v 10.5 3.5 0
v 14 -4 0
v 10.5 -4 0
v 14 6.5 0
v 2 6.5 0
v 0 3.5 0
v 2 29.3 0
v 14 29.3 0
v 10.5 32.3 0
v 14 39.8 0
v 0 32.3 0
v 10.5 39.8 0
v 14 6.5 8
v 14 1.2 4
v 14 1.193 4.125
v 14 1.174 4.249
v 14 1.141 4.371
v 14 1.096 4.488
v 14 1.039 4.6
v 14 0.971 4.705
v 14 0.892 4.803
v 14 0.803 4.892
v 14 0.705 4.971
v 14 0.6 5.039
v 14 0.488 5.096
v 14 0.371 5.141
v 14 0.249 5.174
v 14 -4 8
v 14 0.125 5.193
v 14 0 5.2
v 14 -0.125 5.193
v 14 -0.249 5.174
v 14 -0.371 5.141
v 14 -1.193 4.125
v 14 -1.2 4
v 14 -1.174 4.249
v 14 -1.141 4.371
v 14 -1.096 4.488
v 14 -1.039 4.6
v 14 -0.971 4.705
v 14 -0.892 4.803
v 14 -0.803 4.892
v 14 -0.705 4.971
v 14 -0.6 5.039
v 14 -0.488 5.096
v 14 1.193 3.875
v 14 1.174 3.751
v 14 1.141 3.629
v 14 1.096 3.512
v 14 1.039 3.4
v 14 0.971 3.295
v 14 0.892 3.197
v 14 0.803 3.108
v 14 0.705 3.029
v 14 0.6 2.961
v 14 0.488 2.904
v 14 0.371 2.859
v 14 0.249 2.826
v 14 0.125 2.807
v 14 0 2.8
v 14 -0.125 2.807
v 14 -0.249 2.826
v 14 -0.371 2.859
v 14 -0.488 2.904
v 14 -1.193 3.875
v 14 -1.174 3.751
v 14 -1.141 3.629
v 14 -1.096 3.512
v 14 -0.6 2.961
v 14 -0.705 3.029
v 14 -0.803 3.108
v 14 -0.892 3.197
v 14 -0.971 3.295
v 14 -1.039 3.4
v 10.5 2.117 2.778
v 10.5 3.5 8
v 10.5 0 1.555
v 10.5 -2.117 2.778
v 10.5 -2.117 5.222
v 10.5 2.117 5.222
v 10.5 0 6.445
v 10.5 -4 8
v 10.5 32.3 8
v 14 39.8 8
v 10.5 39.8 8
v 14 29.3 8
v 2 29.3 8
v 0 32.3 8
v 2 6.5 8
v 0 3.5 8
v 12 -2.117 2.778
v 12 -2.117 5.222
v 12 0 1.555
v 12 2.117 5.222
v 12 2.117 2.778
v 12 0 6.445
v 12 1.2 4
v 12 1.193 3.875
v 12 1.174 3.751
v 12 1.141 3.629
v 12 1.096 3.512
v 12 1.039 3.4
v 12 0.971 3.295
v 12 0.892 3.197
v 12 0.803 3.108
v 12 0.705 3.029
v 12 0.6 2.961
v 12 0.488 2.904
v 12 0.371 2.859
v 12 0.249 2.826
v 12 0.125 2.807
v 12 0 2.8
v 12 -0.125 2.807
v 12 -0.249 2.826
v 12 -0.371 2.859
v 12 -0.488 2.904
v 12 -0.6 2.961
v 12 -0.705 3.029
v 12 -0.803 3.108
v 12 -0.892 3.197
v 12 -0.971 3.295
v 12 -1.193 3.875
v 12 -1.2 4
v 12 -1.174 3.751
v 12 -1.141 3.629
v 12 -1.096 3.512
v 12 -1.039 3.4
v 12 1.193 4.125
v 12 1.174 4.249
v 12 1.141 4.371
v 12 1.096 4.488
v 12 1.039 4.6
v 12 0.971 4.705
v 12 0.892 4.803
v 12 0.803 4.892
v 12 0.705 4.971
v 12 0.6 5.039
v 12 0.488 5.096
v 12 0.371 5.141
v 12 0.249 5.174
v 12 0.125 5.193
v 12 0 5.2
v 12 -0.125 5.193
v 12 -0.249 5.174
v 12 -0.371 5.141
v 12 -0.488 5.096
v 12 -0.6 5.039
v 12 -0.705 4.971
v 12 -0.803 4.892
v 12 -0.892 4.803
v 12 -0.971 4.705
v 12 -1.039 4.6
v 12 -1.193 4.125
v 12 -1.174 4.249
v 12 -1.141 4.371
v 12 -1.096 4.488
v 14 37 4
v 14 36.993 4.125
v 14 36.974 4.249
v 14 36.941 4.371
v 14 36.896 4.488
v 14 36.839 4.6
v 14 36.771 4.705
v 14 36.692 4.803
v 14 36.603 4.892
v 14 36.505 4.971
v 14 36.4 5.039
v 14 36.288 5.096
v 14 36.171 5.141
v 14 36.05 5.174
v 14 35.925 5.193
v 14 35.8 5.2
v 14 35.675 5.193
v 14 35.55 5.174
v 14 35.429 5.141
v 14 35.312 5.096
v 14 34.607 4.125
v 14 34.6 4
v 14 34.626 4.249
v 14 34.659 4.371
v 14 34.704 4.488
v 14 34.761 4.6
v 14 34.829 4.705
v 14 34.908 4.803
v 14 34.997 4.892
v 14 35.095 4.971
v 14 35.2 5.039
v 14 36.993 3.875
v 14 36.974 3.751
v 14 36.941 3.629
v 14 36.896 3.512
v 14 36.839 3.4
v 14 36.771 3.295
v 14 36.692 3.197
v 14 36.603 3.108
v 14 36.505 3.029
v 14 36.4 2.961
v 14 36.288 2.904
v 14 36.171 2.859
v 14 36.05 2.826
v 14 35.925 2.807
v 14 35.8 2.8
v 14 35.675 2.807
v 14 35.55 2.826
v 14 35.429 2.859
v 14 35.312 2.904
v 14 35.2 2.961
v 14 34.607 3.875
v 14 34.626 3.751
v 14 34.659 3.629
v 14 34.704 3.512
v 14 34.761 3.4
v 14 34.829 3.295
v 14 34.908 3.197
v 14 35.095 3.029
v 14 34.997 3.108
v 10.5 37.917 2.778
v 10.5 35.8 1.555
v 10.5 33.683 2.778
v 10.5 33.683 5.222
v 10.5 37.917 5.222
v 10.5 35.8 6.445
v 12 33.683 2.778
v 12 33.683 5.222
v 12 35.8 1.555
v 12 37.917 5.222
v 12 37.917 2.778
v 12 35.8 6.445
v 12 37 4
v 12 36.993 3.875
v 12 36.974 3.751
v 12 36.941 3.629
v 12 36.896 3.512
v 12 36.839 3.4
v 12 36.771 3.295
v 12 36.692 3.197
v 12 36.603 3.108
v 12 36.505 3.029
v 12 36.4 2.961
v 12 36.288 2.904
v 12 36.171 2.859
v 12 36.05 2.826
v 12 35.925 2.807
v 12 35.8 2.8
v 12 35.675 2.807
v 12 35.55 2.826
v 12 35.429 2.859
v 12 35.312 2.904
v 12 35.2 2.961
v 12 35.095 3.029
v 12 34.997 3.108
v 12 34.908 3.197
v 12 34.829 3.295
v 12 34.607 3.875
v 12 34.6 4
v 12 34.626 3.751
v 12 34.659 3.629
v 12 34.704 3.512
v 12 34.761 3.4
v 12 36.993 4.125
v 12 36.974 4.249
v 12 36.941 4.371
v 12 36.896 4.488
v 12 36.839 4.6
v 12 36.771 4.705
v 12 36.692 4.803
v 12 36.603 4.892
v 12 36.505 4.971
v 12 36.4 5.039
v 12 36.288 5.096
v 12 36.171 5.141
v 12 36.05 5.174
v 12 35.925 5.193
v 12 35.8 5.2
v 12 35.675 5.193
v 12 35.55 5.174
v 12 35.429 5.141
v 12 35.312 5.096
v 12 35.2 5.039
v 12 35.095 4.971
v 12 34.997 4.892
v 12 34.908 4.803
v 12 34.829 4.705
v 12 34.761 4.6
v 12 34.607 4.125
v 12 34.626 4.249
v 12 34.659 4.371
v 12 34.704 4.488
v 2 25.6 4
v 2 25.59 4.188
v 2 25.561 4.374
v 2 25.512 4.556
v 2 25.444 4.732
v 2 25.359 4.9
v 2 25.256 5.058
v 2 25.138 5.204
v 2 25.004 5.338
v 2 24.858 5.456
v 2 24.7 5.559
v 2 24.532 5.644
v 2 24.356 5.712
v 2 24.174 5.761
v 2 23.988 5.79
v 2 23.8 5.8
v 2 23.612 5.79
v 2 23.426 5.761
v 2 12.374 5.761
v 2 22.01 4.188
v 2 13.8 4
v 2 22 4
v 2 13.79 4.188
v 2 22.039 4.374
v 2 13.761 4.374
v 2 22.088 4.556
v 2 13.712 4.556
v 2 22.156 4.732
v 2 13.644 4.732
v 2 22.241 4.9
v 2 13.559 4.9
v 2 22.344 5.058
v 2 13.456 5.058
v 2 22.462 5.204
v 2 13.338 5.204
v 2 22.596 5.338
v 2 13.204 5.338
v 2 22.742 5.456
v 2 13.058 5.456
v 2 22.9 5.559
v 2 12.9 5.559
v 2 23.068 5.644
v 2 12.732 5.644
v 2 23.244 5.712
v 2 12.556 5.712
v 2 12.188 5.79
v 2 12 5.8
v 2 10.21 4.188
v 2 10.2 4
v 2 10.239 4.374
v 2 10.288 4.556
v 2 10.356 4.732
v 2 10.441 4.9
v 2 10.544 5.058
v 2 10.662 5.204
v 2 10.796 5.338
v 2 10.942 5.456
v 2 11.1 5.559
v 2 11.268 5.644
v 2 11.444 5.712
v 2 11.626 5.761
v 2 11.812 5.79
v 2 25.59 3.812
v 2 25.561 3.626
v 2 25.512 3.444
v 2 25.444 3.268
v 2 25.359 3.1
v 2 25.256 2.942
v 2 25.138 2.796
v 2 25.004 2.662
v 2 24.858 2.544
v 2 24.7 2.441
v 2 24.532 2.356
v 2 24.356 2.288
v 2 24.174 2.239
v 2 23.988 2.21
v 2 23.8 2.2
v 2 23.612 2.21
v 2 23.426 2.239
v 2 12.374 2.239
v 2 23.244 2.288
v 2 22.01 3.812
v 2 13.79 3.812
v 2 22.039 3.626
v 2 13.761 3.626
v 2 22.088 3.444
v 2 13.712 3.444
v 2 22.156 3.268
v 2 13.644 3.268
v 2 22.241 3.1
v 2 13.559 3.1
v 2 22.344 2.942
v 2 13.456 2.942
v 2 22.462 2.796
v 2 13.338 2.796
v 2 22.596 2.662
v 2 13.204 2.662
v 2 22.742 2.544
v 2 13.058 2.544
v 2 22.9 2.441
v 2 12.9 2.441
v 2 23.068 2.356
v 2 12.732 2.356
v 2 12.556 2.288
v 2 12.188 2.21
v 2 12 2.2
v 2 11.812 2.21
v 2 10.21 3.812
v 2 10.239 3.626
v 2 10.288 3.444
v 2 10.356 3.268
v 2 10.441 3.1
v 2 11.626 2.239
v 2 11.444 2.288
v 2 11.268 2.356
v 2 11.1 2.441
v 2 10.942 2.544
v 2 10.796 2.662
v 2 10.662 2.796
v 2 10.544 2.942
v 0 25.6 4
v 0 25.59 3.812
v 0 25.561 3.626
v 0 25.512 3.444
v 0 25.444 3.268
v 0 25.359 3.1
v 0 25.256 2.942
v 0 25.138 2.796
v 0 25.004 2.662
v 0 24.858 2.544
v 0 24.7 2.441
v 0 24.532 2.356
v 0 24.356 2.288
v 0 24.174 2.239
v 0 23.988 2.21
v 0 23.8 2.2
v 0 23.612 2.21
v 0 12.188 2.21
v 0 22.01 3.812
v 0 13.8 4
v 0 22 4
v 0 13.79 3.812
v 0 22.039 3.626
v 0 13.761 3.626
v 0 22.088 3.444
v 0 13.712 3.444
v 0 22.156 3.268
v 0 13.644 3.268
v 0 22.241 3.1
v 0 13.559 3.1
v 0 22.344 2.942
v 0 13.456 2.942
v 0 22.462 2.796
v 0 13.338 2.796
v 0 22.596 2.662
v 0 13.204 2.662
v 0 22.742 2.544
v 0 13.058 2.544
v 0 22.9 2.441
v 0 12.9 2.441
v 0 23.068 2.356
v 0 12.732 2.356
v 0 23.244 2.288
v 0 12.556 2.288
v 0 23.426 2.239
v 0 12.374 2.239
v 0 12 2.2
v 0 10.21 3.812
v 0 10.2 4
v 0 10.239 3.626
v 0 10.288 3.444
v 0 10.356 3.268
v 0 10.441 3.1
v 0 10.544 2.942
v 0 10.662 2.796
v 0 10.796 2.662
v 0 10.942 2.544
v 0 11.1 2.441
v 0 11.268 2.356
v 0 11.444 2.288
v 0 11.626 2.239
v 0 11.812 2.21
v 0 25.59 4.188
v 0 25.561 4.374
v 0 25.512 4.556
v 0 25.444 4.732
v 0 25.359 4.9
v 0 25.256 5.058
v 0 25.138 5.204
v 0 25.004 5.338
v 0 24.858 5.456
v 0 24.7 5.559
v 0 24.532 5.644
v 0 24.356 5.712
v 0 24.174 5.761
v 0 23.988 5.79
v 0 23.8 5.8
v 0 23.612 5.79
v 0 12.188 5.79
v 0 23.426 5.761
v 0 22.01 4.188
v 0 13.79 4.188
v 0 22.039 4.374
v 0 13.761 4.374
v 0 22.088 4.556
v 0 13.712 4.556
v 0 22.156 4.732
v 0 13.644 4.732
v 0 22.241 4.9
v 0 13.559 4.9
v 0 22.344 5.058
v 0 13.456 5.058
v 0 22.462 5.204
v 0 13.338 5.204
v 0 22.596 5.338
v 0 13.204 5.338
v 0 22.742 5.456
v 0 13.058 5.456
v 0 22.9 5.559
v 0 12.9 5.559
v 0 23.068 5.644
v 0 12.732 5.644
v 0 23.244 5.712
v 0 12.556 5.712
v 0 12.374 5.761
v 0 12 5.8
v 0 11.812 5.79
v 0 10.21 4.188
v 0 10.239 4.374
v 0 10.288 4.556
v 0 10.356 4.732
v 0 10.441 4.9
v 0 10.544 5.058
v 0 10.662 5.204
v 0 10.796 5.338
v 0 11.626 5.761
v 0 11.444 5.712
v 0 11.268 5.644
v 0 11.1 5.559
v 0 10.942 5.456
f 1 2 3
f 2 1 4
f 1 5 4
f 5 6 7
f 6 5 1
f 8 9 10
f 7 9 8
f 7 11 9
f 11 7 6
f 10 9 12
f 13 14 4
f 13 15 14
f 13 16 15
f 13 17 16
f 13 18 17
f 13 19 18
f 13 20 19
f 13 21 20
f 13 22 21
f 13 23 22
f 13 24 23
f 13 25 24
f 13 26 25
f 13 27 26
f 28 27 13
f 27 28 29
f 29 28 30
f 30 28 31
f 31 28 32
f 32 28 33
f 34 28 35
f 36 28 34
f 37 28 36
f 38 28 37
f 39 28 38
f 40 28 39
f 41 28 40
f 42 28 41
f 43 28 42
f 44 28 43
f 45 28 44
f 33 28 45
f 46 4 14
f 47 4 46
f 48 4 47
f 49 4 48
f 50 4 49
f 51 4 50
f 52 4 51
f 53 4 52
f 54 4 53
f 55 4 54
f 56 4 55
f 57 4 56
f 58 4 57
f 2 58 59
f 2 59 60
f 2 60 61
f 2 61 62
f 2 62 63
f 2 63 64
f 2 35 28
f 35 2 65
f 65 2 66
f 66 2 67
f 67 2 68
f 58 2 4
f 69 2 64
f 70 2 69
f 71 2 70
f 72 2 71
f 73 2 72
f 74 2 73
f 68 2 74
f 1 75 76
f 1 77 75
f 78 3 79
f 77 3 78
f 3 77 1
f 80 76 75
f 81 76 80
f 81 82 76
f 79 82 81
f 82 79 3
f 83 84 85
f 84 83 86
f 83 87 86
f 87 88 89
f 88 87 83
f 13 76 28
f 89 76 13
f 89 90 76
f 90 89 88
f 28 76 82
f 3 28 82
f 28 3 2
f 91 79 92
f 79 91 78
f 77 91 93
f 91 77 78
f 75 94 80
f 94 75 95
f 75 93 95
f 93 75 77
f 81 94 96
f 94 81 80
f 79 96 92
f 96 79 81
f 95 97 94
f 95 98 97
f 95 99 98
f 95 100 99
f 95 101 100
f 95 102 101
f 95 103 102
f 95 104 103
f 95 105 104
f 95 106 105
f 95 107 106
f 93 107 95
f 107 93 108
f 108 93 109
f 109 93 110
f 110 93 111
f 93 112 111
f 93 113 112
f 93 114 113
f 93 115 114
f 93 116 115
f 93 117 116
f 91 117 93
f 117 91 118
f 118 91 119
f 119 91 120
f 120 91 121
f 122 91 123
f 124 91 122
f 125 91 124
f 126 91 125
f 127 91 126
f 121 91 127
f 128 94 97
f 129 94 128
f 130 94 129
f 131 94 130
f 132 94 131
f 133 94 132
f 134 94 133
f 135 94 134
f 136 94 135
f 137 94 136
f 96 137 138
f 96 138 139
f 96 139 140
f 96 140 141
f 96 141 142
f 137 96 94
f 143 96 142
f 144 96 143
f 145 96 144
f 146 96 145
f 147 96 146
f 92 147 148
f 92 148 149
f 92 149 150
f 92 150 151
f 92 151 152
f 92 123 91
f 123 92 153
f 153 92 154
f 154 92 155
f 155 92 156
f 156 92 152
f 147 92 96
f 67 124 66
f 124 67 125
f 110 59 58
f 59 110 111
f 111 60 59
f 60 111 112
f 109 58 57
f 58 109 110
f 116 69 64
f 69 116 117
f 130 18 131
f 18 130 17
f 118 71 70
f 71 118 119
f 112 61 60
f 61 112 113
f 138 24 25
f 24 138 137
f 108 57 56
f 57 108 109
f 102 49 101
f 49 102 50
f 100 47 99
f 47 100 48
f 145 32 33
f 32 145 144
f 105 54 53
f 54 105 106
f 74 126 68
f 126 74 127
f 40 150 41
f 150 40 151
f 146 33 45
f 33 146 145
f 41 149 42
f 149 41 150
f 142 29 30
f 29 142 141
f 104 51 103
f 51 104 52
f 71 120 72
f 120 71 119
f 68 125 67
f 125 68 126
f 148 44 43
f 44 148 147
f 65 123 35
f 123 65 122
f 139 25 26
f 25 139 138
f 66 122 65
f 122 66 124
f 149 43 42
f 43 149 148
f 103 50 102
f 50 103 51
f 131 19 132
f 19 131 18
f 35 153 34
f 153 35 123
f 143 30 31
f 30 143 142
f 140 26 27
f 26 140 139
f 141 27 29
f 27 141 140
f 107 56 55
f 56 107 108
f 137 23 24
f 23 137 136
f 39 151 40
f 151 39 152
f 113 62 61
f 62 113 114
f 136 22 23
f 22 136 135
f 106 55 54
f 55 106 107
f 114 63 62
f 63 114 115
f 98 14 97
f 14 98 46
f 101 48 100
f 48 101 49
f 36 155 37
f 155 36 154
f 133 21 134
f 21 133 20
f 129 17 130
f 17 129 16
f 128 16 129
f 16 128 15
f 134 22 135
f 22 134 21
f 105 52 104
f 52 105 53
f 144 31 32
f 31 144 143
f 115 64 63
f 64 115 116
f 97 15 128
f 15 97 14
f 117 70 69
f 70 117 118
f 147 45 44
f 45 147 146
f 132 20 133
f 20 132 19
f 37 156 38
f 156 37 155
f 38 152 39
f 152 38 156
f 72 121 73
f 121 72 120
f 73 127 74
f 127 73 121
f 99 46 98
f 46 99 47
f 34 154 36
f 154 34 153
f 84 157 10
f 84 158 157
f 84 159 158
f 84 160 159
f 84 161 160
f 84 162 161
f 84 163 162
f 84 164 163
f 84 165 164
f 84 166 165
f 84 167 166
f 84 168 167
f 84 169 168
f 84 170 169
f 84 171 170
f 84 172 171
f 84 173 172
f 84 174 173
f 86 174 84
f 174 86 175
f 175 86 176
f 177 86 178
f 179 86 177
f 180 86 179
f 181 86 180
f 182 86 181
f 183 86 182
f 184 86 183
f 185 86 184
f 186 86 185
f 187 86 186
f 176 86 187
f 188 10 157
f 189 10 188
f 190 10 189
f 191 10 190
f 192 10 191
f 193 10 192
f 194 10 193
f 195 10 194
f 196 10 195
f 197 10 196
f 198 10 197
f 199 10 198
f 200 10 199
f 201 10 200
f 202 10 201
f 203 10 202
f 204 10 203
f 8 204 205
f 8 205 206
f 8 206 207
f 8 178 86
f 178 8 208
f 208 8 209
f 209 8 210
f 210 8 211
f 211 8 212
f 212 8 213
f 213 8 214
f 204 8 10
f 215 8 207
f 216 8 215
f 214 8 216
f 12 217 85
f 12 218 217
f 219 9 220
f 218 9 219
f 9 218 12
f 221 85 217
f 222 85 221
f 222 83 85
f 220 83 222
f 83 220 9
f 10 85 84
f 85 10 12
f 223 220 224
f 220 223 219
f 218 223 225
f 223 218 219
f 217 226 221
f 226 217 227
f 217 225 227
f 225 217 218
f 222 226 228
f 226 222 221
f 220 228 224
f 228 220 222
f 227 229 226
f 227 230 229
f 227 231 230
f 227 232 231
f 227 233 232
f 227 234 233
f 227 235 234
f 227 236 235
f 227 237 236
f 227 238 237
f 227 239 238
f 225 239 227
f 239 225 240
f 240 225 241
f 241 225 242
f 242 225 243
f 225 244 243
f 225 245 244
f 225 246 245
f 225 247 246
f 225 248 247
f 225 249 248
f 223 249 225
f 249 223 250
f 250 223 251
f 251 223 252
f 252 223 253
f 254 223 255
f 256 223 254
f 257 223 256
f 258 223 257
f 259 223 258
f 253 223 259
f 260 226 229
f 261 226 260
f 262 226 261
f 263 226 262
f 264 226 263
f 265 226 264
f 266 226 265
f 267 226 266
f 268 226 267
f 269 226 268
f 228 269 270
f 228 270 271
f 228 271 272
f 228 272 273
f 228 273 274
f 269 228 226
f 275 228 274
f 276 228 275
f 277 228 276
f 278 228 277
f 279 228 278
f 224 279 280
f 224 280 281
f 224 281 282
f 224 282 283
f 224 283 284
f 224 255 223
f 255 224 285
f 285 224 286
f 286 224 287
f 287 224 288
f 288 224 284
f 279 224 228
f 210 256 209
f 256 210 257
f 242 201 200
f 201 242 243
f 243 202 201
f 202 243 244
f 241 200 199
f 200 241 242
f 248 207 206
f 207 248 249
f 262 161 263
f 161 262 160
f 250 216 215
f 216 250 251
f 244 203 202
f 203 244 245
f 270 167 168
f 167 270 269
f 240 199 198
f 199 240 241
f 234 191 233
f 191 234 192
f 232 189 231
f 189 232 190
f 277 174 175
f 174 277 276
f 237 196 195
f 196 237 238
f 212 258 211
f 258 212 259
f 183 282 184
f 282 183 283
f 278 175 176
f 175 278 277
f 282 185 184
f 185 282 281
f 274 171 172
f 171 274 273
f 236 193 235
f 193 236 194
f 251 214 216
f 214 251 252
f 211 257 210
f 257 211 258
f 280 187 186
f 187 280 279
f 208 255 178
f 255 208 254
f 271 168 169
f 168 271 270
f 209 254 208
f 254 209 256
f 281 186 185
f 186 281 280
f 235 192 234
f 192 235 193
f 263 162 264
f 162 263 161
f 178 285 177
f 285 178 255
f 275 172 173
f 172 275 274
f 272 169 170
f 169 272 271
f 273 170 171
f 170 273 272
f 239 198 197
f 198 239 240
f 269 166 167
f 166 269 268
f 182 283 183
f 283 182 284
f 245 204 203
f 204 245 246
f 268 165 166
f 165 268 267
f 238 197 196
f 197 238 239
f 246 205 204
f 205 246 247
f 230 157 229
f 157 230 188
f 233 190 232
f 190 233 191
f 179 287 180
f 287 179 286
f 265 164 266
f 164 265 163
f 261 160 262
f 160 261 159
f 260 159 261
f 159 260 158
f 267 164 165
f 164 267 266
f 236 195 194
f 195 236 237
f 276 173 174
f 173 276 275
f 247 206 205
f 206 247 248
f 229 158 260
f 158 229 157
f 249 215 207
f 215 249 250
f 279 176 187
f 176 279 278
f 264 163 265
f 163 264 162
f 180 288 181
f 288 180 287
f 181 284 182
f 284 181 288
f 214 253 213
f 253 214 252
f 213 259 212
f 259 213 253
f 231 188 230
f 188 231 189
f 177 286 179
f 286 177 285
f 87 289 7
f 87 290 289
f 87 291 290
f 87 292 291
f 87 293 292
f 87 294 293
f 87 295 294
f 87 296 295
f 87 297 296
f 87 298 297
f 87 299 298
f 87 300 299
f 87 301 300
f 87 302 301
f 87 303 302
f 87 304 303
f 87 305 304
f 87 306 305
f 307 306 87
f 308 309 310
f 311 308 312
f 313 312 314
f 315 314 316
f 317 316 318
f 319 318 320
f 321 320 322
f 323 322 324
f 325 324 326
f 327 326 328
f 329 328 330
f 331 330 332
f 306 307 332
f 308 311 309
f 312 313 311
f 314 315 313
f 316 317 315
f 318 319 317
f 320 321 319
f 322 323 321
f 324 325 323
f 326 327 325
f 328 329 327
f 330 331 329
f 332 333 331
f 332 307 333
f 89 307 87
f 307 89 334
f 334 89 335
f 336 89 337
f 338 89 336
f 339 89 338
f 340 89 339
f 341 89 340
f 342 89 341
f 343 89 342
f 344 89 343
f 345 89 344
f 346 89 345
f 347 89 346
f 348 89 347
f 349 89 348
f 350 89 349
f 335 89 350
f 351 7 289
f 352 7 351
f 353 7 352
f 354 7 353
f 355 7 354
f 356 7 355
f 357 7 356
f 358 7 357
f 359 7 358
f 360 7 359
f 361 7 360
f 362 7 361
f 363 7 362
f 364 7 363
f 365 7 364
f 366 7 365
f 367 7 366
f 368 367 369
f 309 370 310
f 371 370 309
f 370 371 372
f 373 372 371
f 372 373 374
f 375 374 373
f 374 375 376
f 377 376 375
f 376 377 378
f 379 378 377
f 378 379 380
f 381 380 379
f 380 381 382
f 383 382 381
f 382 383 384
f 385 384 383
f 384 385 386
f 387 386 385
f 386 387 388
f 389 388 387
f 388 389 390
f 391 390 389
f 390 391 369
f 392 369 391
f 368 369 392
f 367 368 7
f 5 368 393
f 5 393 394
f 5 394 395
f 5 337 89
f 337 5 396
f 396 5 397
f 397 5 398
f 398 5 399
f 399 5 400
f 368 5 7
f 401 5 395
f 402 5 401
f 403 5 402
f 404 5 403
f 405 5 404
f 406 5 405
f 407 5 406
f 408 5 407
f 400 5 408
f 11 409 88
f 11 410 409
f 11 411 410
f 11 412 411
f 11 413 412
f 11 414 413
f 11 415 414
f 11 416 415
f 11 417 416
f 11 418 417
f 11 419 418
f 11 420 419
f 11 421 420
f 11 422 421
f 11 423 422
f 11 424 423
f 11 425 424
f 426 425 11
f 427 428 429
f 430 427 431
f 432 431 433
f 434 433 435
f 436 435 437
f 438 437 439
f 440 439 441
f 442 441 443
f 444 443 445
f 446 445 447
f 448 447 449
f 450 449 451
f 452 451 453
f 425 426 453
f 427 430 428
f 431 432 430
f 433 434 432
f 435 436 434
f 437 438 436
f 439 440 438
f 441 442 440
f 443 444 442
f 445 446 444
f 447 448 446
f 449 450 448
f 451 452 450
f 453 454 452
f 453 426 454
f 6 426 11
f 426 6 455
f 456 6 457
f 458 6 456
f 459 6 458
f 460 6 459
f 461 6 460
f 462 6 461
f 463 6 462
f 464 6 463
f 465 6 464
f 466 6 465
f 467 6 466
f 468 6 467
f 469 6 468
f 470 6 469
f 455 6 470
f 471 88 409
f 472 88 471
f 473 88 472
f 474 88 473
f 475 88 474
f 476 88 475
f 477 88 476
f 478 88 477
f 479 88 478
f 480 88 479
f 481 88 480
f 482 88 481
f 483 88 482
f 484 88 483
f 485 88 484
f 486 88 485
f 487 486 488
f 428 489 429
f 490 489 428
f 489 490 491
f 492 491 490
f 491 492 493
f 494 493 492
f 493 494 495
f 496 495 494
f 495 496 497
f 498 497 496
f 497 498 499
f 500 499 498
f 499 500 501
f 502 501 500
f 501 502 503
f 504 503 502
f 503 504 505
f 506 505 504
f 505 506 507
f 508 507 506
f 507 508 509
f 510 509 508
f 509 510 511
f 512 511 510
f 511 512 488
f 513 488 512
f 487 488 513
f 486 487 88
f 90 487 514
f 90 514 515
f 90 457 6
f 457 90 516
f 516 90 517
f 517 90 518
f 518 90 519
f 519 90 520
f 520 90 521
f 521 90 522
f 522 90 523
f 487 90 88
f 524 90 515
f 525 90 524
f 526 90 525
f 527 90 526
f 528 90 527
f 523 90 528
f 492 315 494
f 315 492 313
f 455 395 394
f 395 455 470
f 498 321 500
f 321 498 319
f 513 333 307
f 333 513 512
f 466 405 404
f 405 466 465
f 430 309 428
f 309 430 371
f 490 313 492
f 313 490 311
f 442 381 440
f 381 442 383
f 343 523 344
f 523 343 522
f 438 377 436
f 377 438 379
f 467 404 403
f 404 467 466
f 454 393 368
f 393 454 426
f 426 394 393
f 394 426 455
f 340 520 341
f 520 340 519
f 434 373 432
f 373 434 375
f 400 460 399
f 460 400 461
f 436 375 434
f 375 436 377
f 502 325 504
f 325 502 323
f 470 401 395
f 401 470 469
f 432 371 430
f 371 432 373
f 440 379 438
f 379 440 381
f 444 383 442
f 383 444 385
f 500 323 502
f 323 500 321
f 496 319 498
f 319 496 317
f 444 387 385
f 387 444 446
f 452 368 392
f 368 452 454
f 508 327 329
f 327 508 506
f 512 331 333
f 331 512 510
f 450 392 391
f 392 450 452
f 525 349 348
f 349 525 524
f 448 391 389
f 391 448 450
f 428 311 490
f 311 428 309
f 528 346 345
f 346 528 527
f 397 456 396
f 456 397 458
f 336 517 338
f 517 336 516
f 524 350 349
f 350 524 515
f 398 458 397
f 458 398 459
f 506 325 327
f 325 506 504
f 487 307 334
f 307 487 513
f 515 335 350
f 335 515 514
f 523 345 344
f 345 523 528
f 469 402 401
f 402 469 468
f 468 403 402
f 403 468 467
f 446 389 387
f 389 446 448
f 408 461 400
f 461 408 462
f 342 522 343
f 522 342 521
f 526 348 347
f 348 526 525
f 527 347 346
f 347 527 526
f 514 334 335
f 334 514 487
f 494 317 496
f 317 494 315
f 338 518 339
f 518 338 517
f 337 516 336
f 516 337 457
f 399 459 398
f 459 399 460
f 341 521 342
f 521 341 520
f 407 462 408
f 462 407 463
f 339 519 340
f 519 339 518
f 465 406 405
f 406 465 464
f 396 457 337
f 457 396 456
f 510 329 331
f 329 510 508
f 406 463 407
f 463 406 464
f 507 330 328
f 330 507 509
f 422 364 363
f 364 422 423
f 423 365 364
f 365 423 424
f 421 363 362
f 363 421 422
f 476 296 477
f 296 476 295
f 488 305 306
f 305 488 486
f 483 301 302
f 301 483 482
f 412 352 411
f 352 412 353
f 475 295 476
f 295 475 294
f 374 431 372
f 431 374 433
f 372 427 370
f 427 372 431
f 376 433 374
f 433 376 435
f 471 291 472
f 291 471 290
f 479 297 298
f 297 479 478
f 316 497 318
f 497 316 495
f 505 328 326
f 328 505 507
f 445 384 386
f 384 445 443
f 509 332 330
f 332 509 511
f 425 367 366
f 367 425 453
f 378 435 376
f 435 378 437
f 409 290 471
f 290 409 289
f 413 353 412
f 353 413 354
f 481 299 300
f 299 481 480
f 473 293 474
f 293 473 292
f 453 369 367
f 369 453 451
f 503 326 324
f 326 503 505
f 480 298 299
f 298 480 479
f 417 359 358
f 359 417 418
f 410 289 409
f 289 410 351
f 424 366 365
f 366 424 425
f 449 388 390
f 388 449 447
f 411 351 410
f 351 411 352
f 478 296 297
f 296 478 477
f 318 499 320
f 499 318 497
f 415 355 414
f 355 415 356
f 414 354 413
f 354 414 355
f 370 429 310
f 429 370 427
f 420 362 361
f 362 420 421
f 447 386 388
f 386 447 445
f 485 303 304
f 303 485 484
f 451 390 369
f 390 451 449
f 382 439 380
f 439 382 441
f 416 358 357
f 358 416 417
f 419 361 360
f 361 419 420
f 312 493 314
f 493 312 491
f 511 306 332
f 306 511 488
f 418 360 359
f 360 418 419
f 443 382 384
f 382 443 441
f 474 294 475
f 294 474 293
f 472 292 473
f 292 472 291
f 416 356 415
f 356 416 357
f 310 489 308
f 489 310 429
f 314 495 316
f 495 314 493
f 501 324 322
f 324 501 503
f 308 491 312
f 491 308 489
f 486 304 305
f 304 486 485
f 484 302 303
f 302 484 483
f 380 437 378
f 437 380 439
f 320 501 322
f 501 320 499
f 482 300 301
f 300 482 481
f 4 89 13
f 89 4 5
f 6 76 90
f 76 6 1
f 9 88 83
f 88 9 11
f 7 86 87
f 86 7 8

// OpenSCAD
// Mounting bracket for 4x6 cm protoboard
// (use 2, one on each end)

// All units are mm

// width of an M2 nut
nut_w = 3.89;

// allow some clearance (due to imprecision of printer)
nut_clear = 1;

// width of the pocket where the nut will sit
nut_pocket_w = nut_w + nut_clear;

// height of M2 nut, use this as the pocket depth
nut_h = 1.5;

// clearance hole width for an M2 screw
screw_hole_w = 2.4;

// distance between centers of screw holes
// (along 4cm dimension of protoboard)
screw_hole_center_d = 35.8;

// width of mounting pad
pad_w = 8;

// height of mounting pad
pad_h = nut_h + 2;

// small fudge factor for making hollows using difference
fudge = 0.1;

// height of bracket (measured to top surface of pads)
bracket_h = 14;

// width of post wall holding up pads
post_w = 3;

// offset of post from center of pad screw holes
post_offset = pad_w/2 + 1;

// length of bottom plate
plate_len = screw_hole_center_d - post_offset*2;

// thickness of bottom plate
plate_h = 2;

// diameter of mounting screw holes (wood screws)
mounting_screw_w = 3.6;

// offset of mounting screw holes from center of pad screw holes
mounting_screw_offset = post_offset + 7;

module mounting_pad() {
    difference() {
        translate([-pad_w/2, -pad_w/2, 0]) {
            cube([pad_w, pad_w, pad_h]);
        }
        
        translate([0, 0, -fudge]) {
            cylinder(r=nut_pocket_w/2, h=nut_h+fudge, $fn=6);
        }
        
        translate([0, 0, -fudge]) {
            cylinder(r=screw_hole_w/2, h=pad_h+fudge*2, $fn=60);
        }
    }
}

module post() {
    translate([-pad_w/2, -post_w/2, 0]) {
        cube([pad_w, post_w, bracket_h]);
    }
}

module bottom_plate() {
    translate([-pad_w/2, -plate_len/2, 0]) {
        cube([pad_w, plate_len, plate_h]);
    }
}

module bracket() {
    // duplicate and raise pads to correct height
    translate([0, 0, bracket_h - pad_h]) {
        mounting_pad();
        
        translate([0, screw_hole_center_d, 0]) {
            mounting_pad();
        }
    }
    
    // vertical posts to hold pads
    translate([0, post_offset, 0]) {
        post();
    }
    translate([0, screw_hole_center_d-post_offset, 0]) {
        post();
    }
 
    // bottom plate (with mounting screw holes)
    difference() {
        translate([0, post_offset + plate_len/2, 0]) {
            bottom_plate();
        }
        
        translate([0, mounting_screw_offset, -fudge]) {
            cylinder(r=mounting_screw_w/2, h=plate_h+fudge*2, $fn=60);
        }
        
        translate([0, screw_hole_center_d-mounting_screw_offset, -fudge]) {
            cylinder(r=mounting_screw_w/2, h=plate_h+fudge*2, $fn=60);
        }
    }
}

// the bracket is printed on its side (printing the screw holes
// and nut pockets with overhangs shouldn't be a problem)
translate([0, 0, pad_w/2]) {
    rotate([0, 90, 0]) {
        bracket();
    }
}
